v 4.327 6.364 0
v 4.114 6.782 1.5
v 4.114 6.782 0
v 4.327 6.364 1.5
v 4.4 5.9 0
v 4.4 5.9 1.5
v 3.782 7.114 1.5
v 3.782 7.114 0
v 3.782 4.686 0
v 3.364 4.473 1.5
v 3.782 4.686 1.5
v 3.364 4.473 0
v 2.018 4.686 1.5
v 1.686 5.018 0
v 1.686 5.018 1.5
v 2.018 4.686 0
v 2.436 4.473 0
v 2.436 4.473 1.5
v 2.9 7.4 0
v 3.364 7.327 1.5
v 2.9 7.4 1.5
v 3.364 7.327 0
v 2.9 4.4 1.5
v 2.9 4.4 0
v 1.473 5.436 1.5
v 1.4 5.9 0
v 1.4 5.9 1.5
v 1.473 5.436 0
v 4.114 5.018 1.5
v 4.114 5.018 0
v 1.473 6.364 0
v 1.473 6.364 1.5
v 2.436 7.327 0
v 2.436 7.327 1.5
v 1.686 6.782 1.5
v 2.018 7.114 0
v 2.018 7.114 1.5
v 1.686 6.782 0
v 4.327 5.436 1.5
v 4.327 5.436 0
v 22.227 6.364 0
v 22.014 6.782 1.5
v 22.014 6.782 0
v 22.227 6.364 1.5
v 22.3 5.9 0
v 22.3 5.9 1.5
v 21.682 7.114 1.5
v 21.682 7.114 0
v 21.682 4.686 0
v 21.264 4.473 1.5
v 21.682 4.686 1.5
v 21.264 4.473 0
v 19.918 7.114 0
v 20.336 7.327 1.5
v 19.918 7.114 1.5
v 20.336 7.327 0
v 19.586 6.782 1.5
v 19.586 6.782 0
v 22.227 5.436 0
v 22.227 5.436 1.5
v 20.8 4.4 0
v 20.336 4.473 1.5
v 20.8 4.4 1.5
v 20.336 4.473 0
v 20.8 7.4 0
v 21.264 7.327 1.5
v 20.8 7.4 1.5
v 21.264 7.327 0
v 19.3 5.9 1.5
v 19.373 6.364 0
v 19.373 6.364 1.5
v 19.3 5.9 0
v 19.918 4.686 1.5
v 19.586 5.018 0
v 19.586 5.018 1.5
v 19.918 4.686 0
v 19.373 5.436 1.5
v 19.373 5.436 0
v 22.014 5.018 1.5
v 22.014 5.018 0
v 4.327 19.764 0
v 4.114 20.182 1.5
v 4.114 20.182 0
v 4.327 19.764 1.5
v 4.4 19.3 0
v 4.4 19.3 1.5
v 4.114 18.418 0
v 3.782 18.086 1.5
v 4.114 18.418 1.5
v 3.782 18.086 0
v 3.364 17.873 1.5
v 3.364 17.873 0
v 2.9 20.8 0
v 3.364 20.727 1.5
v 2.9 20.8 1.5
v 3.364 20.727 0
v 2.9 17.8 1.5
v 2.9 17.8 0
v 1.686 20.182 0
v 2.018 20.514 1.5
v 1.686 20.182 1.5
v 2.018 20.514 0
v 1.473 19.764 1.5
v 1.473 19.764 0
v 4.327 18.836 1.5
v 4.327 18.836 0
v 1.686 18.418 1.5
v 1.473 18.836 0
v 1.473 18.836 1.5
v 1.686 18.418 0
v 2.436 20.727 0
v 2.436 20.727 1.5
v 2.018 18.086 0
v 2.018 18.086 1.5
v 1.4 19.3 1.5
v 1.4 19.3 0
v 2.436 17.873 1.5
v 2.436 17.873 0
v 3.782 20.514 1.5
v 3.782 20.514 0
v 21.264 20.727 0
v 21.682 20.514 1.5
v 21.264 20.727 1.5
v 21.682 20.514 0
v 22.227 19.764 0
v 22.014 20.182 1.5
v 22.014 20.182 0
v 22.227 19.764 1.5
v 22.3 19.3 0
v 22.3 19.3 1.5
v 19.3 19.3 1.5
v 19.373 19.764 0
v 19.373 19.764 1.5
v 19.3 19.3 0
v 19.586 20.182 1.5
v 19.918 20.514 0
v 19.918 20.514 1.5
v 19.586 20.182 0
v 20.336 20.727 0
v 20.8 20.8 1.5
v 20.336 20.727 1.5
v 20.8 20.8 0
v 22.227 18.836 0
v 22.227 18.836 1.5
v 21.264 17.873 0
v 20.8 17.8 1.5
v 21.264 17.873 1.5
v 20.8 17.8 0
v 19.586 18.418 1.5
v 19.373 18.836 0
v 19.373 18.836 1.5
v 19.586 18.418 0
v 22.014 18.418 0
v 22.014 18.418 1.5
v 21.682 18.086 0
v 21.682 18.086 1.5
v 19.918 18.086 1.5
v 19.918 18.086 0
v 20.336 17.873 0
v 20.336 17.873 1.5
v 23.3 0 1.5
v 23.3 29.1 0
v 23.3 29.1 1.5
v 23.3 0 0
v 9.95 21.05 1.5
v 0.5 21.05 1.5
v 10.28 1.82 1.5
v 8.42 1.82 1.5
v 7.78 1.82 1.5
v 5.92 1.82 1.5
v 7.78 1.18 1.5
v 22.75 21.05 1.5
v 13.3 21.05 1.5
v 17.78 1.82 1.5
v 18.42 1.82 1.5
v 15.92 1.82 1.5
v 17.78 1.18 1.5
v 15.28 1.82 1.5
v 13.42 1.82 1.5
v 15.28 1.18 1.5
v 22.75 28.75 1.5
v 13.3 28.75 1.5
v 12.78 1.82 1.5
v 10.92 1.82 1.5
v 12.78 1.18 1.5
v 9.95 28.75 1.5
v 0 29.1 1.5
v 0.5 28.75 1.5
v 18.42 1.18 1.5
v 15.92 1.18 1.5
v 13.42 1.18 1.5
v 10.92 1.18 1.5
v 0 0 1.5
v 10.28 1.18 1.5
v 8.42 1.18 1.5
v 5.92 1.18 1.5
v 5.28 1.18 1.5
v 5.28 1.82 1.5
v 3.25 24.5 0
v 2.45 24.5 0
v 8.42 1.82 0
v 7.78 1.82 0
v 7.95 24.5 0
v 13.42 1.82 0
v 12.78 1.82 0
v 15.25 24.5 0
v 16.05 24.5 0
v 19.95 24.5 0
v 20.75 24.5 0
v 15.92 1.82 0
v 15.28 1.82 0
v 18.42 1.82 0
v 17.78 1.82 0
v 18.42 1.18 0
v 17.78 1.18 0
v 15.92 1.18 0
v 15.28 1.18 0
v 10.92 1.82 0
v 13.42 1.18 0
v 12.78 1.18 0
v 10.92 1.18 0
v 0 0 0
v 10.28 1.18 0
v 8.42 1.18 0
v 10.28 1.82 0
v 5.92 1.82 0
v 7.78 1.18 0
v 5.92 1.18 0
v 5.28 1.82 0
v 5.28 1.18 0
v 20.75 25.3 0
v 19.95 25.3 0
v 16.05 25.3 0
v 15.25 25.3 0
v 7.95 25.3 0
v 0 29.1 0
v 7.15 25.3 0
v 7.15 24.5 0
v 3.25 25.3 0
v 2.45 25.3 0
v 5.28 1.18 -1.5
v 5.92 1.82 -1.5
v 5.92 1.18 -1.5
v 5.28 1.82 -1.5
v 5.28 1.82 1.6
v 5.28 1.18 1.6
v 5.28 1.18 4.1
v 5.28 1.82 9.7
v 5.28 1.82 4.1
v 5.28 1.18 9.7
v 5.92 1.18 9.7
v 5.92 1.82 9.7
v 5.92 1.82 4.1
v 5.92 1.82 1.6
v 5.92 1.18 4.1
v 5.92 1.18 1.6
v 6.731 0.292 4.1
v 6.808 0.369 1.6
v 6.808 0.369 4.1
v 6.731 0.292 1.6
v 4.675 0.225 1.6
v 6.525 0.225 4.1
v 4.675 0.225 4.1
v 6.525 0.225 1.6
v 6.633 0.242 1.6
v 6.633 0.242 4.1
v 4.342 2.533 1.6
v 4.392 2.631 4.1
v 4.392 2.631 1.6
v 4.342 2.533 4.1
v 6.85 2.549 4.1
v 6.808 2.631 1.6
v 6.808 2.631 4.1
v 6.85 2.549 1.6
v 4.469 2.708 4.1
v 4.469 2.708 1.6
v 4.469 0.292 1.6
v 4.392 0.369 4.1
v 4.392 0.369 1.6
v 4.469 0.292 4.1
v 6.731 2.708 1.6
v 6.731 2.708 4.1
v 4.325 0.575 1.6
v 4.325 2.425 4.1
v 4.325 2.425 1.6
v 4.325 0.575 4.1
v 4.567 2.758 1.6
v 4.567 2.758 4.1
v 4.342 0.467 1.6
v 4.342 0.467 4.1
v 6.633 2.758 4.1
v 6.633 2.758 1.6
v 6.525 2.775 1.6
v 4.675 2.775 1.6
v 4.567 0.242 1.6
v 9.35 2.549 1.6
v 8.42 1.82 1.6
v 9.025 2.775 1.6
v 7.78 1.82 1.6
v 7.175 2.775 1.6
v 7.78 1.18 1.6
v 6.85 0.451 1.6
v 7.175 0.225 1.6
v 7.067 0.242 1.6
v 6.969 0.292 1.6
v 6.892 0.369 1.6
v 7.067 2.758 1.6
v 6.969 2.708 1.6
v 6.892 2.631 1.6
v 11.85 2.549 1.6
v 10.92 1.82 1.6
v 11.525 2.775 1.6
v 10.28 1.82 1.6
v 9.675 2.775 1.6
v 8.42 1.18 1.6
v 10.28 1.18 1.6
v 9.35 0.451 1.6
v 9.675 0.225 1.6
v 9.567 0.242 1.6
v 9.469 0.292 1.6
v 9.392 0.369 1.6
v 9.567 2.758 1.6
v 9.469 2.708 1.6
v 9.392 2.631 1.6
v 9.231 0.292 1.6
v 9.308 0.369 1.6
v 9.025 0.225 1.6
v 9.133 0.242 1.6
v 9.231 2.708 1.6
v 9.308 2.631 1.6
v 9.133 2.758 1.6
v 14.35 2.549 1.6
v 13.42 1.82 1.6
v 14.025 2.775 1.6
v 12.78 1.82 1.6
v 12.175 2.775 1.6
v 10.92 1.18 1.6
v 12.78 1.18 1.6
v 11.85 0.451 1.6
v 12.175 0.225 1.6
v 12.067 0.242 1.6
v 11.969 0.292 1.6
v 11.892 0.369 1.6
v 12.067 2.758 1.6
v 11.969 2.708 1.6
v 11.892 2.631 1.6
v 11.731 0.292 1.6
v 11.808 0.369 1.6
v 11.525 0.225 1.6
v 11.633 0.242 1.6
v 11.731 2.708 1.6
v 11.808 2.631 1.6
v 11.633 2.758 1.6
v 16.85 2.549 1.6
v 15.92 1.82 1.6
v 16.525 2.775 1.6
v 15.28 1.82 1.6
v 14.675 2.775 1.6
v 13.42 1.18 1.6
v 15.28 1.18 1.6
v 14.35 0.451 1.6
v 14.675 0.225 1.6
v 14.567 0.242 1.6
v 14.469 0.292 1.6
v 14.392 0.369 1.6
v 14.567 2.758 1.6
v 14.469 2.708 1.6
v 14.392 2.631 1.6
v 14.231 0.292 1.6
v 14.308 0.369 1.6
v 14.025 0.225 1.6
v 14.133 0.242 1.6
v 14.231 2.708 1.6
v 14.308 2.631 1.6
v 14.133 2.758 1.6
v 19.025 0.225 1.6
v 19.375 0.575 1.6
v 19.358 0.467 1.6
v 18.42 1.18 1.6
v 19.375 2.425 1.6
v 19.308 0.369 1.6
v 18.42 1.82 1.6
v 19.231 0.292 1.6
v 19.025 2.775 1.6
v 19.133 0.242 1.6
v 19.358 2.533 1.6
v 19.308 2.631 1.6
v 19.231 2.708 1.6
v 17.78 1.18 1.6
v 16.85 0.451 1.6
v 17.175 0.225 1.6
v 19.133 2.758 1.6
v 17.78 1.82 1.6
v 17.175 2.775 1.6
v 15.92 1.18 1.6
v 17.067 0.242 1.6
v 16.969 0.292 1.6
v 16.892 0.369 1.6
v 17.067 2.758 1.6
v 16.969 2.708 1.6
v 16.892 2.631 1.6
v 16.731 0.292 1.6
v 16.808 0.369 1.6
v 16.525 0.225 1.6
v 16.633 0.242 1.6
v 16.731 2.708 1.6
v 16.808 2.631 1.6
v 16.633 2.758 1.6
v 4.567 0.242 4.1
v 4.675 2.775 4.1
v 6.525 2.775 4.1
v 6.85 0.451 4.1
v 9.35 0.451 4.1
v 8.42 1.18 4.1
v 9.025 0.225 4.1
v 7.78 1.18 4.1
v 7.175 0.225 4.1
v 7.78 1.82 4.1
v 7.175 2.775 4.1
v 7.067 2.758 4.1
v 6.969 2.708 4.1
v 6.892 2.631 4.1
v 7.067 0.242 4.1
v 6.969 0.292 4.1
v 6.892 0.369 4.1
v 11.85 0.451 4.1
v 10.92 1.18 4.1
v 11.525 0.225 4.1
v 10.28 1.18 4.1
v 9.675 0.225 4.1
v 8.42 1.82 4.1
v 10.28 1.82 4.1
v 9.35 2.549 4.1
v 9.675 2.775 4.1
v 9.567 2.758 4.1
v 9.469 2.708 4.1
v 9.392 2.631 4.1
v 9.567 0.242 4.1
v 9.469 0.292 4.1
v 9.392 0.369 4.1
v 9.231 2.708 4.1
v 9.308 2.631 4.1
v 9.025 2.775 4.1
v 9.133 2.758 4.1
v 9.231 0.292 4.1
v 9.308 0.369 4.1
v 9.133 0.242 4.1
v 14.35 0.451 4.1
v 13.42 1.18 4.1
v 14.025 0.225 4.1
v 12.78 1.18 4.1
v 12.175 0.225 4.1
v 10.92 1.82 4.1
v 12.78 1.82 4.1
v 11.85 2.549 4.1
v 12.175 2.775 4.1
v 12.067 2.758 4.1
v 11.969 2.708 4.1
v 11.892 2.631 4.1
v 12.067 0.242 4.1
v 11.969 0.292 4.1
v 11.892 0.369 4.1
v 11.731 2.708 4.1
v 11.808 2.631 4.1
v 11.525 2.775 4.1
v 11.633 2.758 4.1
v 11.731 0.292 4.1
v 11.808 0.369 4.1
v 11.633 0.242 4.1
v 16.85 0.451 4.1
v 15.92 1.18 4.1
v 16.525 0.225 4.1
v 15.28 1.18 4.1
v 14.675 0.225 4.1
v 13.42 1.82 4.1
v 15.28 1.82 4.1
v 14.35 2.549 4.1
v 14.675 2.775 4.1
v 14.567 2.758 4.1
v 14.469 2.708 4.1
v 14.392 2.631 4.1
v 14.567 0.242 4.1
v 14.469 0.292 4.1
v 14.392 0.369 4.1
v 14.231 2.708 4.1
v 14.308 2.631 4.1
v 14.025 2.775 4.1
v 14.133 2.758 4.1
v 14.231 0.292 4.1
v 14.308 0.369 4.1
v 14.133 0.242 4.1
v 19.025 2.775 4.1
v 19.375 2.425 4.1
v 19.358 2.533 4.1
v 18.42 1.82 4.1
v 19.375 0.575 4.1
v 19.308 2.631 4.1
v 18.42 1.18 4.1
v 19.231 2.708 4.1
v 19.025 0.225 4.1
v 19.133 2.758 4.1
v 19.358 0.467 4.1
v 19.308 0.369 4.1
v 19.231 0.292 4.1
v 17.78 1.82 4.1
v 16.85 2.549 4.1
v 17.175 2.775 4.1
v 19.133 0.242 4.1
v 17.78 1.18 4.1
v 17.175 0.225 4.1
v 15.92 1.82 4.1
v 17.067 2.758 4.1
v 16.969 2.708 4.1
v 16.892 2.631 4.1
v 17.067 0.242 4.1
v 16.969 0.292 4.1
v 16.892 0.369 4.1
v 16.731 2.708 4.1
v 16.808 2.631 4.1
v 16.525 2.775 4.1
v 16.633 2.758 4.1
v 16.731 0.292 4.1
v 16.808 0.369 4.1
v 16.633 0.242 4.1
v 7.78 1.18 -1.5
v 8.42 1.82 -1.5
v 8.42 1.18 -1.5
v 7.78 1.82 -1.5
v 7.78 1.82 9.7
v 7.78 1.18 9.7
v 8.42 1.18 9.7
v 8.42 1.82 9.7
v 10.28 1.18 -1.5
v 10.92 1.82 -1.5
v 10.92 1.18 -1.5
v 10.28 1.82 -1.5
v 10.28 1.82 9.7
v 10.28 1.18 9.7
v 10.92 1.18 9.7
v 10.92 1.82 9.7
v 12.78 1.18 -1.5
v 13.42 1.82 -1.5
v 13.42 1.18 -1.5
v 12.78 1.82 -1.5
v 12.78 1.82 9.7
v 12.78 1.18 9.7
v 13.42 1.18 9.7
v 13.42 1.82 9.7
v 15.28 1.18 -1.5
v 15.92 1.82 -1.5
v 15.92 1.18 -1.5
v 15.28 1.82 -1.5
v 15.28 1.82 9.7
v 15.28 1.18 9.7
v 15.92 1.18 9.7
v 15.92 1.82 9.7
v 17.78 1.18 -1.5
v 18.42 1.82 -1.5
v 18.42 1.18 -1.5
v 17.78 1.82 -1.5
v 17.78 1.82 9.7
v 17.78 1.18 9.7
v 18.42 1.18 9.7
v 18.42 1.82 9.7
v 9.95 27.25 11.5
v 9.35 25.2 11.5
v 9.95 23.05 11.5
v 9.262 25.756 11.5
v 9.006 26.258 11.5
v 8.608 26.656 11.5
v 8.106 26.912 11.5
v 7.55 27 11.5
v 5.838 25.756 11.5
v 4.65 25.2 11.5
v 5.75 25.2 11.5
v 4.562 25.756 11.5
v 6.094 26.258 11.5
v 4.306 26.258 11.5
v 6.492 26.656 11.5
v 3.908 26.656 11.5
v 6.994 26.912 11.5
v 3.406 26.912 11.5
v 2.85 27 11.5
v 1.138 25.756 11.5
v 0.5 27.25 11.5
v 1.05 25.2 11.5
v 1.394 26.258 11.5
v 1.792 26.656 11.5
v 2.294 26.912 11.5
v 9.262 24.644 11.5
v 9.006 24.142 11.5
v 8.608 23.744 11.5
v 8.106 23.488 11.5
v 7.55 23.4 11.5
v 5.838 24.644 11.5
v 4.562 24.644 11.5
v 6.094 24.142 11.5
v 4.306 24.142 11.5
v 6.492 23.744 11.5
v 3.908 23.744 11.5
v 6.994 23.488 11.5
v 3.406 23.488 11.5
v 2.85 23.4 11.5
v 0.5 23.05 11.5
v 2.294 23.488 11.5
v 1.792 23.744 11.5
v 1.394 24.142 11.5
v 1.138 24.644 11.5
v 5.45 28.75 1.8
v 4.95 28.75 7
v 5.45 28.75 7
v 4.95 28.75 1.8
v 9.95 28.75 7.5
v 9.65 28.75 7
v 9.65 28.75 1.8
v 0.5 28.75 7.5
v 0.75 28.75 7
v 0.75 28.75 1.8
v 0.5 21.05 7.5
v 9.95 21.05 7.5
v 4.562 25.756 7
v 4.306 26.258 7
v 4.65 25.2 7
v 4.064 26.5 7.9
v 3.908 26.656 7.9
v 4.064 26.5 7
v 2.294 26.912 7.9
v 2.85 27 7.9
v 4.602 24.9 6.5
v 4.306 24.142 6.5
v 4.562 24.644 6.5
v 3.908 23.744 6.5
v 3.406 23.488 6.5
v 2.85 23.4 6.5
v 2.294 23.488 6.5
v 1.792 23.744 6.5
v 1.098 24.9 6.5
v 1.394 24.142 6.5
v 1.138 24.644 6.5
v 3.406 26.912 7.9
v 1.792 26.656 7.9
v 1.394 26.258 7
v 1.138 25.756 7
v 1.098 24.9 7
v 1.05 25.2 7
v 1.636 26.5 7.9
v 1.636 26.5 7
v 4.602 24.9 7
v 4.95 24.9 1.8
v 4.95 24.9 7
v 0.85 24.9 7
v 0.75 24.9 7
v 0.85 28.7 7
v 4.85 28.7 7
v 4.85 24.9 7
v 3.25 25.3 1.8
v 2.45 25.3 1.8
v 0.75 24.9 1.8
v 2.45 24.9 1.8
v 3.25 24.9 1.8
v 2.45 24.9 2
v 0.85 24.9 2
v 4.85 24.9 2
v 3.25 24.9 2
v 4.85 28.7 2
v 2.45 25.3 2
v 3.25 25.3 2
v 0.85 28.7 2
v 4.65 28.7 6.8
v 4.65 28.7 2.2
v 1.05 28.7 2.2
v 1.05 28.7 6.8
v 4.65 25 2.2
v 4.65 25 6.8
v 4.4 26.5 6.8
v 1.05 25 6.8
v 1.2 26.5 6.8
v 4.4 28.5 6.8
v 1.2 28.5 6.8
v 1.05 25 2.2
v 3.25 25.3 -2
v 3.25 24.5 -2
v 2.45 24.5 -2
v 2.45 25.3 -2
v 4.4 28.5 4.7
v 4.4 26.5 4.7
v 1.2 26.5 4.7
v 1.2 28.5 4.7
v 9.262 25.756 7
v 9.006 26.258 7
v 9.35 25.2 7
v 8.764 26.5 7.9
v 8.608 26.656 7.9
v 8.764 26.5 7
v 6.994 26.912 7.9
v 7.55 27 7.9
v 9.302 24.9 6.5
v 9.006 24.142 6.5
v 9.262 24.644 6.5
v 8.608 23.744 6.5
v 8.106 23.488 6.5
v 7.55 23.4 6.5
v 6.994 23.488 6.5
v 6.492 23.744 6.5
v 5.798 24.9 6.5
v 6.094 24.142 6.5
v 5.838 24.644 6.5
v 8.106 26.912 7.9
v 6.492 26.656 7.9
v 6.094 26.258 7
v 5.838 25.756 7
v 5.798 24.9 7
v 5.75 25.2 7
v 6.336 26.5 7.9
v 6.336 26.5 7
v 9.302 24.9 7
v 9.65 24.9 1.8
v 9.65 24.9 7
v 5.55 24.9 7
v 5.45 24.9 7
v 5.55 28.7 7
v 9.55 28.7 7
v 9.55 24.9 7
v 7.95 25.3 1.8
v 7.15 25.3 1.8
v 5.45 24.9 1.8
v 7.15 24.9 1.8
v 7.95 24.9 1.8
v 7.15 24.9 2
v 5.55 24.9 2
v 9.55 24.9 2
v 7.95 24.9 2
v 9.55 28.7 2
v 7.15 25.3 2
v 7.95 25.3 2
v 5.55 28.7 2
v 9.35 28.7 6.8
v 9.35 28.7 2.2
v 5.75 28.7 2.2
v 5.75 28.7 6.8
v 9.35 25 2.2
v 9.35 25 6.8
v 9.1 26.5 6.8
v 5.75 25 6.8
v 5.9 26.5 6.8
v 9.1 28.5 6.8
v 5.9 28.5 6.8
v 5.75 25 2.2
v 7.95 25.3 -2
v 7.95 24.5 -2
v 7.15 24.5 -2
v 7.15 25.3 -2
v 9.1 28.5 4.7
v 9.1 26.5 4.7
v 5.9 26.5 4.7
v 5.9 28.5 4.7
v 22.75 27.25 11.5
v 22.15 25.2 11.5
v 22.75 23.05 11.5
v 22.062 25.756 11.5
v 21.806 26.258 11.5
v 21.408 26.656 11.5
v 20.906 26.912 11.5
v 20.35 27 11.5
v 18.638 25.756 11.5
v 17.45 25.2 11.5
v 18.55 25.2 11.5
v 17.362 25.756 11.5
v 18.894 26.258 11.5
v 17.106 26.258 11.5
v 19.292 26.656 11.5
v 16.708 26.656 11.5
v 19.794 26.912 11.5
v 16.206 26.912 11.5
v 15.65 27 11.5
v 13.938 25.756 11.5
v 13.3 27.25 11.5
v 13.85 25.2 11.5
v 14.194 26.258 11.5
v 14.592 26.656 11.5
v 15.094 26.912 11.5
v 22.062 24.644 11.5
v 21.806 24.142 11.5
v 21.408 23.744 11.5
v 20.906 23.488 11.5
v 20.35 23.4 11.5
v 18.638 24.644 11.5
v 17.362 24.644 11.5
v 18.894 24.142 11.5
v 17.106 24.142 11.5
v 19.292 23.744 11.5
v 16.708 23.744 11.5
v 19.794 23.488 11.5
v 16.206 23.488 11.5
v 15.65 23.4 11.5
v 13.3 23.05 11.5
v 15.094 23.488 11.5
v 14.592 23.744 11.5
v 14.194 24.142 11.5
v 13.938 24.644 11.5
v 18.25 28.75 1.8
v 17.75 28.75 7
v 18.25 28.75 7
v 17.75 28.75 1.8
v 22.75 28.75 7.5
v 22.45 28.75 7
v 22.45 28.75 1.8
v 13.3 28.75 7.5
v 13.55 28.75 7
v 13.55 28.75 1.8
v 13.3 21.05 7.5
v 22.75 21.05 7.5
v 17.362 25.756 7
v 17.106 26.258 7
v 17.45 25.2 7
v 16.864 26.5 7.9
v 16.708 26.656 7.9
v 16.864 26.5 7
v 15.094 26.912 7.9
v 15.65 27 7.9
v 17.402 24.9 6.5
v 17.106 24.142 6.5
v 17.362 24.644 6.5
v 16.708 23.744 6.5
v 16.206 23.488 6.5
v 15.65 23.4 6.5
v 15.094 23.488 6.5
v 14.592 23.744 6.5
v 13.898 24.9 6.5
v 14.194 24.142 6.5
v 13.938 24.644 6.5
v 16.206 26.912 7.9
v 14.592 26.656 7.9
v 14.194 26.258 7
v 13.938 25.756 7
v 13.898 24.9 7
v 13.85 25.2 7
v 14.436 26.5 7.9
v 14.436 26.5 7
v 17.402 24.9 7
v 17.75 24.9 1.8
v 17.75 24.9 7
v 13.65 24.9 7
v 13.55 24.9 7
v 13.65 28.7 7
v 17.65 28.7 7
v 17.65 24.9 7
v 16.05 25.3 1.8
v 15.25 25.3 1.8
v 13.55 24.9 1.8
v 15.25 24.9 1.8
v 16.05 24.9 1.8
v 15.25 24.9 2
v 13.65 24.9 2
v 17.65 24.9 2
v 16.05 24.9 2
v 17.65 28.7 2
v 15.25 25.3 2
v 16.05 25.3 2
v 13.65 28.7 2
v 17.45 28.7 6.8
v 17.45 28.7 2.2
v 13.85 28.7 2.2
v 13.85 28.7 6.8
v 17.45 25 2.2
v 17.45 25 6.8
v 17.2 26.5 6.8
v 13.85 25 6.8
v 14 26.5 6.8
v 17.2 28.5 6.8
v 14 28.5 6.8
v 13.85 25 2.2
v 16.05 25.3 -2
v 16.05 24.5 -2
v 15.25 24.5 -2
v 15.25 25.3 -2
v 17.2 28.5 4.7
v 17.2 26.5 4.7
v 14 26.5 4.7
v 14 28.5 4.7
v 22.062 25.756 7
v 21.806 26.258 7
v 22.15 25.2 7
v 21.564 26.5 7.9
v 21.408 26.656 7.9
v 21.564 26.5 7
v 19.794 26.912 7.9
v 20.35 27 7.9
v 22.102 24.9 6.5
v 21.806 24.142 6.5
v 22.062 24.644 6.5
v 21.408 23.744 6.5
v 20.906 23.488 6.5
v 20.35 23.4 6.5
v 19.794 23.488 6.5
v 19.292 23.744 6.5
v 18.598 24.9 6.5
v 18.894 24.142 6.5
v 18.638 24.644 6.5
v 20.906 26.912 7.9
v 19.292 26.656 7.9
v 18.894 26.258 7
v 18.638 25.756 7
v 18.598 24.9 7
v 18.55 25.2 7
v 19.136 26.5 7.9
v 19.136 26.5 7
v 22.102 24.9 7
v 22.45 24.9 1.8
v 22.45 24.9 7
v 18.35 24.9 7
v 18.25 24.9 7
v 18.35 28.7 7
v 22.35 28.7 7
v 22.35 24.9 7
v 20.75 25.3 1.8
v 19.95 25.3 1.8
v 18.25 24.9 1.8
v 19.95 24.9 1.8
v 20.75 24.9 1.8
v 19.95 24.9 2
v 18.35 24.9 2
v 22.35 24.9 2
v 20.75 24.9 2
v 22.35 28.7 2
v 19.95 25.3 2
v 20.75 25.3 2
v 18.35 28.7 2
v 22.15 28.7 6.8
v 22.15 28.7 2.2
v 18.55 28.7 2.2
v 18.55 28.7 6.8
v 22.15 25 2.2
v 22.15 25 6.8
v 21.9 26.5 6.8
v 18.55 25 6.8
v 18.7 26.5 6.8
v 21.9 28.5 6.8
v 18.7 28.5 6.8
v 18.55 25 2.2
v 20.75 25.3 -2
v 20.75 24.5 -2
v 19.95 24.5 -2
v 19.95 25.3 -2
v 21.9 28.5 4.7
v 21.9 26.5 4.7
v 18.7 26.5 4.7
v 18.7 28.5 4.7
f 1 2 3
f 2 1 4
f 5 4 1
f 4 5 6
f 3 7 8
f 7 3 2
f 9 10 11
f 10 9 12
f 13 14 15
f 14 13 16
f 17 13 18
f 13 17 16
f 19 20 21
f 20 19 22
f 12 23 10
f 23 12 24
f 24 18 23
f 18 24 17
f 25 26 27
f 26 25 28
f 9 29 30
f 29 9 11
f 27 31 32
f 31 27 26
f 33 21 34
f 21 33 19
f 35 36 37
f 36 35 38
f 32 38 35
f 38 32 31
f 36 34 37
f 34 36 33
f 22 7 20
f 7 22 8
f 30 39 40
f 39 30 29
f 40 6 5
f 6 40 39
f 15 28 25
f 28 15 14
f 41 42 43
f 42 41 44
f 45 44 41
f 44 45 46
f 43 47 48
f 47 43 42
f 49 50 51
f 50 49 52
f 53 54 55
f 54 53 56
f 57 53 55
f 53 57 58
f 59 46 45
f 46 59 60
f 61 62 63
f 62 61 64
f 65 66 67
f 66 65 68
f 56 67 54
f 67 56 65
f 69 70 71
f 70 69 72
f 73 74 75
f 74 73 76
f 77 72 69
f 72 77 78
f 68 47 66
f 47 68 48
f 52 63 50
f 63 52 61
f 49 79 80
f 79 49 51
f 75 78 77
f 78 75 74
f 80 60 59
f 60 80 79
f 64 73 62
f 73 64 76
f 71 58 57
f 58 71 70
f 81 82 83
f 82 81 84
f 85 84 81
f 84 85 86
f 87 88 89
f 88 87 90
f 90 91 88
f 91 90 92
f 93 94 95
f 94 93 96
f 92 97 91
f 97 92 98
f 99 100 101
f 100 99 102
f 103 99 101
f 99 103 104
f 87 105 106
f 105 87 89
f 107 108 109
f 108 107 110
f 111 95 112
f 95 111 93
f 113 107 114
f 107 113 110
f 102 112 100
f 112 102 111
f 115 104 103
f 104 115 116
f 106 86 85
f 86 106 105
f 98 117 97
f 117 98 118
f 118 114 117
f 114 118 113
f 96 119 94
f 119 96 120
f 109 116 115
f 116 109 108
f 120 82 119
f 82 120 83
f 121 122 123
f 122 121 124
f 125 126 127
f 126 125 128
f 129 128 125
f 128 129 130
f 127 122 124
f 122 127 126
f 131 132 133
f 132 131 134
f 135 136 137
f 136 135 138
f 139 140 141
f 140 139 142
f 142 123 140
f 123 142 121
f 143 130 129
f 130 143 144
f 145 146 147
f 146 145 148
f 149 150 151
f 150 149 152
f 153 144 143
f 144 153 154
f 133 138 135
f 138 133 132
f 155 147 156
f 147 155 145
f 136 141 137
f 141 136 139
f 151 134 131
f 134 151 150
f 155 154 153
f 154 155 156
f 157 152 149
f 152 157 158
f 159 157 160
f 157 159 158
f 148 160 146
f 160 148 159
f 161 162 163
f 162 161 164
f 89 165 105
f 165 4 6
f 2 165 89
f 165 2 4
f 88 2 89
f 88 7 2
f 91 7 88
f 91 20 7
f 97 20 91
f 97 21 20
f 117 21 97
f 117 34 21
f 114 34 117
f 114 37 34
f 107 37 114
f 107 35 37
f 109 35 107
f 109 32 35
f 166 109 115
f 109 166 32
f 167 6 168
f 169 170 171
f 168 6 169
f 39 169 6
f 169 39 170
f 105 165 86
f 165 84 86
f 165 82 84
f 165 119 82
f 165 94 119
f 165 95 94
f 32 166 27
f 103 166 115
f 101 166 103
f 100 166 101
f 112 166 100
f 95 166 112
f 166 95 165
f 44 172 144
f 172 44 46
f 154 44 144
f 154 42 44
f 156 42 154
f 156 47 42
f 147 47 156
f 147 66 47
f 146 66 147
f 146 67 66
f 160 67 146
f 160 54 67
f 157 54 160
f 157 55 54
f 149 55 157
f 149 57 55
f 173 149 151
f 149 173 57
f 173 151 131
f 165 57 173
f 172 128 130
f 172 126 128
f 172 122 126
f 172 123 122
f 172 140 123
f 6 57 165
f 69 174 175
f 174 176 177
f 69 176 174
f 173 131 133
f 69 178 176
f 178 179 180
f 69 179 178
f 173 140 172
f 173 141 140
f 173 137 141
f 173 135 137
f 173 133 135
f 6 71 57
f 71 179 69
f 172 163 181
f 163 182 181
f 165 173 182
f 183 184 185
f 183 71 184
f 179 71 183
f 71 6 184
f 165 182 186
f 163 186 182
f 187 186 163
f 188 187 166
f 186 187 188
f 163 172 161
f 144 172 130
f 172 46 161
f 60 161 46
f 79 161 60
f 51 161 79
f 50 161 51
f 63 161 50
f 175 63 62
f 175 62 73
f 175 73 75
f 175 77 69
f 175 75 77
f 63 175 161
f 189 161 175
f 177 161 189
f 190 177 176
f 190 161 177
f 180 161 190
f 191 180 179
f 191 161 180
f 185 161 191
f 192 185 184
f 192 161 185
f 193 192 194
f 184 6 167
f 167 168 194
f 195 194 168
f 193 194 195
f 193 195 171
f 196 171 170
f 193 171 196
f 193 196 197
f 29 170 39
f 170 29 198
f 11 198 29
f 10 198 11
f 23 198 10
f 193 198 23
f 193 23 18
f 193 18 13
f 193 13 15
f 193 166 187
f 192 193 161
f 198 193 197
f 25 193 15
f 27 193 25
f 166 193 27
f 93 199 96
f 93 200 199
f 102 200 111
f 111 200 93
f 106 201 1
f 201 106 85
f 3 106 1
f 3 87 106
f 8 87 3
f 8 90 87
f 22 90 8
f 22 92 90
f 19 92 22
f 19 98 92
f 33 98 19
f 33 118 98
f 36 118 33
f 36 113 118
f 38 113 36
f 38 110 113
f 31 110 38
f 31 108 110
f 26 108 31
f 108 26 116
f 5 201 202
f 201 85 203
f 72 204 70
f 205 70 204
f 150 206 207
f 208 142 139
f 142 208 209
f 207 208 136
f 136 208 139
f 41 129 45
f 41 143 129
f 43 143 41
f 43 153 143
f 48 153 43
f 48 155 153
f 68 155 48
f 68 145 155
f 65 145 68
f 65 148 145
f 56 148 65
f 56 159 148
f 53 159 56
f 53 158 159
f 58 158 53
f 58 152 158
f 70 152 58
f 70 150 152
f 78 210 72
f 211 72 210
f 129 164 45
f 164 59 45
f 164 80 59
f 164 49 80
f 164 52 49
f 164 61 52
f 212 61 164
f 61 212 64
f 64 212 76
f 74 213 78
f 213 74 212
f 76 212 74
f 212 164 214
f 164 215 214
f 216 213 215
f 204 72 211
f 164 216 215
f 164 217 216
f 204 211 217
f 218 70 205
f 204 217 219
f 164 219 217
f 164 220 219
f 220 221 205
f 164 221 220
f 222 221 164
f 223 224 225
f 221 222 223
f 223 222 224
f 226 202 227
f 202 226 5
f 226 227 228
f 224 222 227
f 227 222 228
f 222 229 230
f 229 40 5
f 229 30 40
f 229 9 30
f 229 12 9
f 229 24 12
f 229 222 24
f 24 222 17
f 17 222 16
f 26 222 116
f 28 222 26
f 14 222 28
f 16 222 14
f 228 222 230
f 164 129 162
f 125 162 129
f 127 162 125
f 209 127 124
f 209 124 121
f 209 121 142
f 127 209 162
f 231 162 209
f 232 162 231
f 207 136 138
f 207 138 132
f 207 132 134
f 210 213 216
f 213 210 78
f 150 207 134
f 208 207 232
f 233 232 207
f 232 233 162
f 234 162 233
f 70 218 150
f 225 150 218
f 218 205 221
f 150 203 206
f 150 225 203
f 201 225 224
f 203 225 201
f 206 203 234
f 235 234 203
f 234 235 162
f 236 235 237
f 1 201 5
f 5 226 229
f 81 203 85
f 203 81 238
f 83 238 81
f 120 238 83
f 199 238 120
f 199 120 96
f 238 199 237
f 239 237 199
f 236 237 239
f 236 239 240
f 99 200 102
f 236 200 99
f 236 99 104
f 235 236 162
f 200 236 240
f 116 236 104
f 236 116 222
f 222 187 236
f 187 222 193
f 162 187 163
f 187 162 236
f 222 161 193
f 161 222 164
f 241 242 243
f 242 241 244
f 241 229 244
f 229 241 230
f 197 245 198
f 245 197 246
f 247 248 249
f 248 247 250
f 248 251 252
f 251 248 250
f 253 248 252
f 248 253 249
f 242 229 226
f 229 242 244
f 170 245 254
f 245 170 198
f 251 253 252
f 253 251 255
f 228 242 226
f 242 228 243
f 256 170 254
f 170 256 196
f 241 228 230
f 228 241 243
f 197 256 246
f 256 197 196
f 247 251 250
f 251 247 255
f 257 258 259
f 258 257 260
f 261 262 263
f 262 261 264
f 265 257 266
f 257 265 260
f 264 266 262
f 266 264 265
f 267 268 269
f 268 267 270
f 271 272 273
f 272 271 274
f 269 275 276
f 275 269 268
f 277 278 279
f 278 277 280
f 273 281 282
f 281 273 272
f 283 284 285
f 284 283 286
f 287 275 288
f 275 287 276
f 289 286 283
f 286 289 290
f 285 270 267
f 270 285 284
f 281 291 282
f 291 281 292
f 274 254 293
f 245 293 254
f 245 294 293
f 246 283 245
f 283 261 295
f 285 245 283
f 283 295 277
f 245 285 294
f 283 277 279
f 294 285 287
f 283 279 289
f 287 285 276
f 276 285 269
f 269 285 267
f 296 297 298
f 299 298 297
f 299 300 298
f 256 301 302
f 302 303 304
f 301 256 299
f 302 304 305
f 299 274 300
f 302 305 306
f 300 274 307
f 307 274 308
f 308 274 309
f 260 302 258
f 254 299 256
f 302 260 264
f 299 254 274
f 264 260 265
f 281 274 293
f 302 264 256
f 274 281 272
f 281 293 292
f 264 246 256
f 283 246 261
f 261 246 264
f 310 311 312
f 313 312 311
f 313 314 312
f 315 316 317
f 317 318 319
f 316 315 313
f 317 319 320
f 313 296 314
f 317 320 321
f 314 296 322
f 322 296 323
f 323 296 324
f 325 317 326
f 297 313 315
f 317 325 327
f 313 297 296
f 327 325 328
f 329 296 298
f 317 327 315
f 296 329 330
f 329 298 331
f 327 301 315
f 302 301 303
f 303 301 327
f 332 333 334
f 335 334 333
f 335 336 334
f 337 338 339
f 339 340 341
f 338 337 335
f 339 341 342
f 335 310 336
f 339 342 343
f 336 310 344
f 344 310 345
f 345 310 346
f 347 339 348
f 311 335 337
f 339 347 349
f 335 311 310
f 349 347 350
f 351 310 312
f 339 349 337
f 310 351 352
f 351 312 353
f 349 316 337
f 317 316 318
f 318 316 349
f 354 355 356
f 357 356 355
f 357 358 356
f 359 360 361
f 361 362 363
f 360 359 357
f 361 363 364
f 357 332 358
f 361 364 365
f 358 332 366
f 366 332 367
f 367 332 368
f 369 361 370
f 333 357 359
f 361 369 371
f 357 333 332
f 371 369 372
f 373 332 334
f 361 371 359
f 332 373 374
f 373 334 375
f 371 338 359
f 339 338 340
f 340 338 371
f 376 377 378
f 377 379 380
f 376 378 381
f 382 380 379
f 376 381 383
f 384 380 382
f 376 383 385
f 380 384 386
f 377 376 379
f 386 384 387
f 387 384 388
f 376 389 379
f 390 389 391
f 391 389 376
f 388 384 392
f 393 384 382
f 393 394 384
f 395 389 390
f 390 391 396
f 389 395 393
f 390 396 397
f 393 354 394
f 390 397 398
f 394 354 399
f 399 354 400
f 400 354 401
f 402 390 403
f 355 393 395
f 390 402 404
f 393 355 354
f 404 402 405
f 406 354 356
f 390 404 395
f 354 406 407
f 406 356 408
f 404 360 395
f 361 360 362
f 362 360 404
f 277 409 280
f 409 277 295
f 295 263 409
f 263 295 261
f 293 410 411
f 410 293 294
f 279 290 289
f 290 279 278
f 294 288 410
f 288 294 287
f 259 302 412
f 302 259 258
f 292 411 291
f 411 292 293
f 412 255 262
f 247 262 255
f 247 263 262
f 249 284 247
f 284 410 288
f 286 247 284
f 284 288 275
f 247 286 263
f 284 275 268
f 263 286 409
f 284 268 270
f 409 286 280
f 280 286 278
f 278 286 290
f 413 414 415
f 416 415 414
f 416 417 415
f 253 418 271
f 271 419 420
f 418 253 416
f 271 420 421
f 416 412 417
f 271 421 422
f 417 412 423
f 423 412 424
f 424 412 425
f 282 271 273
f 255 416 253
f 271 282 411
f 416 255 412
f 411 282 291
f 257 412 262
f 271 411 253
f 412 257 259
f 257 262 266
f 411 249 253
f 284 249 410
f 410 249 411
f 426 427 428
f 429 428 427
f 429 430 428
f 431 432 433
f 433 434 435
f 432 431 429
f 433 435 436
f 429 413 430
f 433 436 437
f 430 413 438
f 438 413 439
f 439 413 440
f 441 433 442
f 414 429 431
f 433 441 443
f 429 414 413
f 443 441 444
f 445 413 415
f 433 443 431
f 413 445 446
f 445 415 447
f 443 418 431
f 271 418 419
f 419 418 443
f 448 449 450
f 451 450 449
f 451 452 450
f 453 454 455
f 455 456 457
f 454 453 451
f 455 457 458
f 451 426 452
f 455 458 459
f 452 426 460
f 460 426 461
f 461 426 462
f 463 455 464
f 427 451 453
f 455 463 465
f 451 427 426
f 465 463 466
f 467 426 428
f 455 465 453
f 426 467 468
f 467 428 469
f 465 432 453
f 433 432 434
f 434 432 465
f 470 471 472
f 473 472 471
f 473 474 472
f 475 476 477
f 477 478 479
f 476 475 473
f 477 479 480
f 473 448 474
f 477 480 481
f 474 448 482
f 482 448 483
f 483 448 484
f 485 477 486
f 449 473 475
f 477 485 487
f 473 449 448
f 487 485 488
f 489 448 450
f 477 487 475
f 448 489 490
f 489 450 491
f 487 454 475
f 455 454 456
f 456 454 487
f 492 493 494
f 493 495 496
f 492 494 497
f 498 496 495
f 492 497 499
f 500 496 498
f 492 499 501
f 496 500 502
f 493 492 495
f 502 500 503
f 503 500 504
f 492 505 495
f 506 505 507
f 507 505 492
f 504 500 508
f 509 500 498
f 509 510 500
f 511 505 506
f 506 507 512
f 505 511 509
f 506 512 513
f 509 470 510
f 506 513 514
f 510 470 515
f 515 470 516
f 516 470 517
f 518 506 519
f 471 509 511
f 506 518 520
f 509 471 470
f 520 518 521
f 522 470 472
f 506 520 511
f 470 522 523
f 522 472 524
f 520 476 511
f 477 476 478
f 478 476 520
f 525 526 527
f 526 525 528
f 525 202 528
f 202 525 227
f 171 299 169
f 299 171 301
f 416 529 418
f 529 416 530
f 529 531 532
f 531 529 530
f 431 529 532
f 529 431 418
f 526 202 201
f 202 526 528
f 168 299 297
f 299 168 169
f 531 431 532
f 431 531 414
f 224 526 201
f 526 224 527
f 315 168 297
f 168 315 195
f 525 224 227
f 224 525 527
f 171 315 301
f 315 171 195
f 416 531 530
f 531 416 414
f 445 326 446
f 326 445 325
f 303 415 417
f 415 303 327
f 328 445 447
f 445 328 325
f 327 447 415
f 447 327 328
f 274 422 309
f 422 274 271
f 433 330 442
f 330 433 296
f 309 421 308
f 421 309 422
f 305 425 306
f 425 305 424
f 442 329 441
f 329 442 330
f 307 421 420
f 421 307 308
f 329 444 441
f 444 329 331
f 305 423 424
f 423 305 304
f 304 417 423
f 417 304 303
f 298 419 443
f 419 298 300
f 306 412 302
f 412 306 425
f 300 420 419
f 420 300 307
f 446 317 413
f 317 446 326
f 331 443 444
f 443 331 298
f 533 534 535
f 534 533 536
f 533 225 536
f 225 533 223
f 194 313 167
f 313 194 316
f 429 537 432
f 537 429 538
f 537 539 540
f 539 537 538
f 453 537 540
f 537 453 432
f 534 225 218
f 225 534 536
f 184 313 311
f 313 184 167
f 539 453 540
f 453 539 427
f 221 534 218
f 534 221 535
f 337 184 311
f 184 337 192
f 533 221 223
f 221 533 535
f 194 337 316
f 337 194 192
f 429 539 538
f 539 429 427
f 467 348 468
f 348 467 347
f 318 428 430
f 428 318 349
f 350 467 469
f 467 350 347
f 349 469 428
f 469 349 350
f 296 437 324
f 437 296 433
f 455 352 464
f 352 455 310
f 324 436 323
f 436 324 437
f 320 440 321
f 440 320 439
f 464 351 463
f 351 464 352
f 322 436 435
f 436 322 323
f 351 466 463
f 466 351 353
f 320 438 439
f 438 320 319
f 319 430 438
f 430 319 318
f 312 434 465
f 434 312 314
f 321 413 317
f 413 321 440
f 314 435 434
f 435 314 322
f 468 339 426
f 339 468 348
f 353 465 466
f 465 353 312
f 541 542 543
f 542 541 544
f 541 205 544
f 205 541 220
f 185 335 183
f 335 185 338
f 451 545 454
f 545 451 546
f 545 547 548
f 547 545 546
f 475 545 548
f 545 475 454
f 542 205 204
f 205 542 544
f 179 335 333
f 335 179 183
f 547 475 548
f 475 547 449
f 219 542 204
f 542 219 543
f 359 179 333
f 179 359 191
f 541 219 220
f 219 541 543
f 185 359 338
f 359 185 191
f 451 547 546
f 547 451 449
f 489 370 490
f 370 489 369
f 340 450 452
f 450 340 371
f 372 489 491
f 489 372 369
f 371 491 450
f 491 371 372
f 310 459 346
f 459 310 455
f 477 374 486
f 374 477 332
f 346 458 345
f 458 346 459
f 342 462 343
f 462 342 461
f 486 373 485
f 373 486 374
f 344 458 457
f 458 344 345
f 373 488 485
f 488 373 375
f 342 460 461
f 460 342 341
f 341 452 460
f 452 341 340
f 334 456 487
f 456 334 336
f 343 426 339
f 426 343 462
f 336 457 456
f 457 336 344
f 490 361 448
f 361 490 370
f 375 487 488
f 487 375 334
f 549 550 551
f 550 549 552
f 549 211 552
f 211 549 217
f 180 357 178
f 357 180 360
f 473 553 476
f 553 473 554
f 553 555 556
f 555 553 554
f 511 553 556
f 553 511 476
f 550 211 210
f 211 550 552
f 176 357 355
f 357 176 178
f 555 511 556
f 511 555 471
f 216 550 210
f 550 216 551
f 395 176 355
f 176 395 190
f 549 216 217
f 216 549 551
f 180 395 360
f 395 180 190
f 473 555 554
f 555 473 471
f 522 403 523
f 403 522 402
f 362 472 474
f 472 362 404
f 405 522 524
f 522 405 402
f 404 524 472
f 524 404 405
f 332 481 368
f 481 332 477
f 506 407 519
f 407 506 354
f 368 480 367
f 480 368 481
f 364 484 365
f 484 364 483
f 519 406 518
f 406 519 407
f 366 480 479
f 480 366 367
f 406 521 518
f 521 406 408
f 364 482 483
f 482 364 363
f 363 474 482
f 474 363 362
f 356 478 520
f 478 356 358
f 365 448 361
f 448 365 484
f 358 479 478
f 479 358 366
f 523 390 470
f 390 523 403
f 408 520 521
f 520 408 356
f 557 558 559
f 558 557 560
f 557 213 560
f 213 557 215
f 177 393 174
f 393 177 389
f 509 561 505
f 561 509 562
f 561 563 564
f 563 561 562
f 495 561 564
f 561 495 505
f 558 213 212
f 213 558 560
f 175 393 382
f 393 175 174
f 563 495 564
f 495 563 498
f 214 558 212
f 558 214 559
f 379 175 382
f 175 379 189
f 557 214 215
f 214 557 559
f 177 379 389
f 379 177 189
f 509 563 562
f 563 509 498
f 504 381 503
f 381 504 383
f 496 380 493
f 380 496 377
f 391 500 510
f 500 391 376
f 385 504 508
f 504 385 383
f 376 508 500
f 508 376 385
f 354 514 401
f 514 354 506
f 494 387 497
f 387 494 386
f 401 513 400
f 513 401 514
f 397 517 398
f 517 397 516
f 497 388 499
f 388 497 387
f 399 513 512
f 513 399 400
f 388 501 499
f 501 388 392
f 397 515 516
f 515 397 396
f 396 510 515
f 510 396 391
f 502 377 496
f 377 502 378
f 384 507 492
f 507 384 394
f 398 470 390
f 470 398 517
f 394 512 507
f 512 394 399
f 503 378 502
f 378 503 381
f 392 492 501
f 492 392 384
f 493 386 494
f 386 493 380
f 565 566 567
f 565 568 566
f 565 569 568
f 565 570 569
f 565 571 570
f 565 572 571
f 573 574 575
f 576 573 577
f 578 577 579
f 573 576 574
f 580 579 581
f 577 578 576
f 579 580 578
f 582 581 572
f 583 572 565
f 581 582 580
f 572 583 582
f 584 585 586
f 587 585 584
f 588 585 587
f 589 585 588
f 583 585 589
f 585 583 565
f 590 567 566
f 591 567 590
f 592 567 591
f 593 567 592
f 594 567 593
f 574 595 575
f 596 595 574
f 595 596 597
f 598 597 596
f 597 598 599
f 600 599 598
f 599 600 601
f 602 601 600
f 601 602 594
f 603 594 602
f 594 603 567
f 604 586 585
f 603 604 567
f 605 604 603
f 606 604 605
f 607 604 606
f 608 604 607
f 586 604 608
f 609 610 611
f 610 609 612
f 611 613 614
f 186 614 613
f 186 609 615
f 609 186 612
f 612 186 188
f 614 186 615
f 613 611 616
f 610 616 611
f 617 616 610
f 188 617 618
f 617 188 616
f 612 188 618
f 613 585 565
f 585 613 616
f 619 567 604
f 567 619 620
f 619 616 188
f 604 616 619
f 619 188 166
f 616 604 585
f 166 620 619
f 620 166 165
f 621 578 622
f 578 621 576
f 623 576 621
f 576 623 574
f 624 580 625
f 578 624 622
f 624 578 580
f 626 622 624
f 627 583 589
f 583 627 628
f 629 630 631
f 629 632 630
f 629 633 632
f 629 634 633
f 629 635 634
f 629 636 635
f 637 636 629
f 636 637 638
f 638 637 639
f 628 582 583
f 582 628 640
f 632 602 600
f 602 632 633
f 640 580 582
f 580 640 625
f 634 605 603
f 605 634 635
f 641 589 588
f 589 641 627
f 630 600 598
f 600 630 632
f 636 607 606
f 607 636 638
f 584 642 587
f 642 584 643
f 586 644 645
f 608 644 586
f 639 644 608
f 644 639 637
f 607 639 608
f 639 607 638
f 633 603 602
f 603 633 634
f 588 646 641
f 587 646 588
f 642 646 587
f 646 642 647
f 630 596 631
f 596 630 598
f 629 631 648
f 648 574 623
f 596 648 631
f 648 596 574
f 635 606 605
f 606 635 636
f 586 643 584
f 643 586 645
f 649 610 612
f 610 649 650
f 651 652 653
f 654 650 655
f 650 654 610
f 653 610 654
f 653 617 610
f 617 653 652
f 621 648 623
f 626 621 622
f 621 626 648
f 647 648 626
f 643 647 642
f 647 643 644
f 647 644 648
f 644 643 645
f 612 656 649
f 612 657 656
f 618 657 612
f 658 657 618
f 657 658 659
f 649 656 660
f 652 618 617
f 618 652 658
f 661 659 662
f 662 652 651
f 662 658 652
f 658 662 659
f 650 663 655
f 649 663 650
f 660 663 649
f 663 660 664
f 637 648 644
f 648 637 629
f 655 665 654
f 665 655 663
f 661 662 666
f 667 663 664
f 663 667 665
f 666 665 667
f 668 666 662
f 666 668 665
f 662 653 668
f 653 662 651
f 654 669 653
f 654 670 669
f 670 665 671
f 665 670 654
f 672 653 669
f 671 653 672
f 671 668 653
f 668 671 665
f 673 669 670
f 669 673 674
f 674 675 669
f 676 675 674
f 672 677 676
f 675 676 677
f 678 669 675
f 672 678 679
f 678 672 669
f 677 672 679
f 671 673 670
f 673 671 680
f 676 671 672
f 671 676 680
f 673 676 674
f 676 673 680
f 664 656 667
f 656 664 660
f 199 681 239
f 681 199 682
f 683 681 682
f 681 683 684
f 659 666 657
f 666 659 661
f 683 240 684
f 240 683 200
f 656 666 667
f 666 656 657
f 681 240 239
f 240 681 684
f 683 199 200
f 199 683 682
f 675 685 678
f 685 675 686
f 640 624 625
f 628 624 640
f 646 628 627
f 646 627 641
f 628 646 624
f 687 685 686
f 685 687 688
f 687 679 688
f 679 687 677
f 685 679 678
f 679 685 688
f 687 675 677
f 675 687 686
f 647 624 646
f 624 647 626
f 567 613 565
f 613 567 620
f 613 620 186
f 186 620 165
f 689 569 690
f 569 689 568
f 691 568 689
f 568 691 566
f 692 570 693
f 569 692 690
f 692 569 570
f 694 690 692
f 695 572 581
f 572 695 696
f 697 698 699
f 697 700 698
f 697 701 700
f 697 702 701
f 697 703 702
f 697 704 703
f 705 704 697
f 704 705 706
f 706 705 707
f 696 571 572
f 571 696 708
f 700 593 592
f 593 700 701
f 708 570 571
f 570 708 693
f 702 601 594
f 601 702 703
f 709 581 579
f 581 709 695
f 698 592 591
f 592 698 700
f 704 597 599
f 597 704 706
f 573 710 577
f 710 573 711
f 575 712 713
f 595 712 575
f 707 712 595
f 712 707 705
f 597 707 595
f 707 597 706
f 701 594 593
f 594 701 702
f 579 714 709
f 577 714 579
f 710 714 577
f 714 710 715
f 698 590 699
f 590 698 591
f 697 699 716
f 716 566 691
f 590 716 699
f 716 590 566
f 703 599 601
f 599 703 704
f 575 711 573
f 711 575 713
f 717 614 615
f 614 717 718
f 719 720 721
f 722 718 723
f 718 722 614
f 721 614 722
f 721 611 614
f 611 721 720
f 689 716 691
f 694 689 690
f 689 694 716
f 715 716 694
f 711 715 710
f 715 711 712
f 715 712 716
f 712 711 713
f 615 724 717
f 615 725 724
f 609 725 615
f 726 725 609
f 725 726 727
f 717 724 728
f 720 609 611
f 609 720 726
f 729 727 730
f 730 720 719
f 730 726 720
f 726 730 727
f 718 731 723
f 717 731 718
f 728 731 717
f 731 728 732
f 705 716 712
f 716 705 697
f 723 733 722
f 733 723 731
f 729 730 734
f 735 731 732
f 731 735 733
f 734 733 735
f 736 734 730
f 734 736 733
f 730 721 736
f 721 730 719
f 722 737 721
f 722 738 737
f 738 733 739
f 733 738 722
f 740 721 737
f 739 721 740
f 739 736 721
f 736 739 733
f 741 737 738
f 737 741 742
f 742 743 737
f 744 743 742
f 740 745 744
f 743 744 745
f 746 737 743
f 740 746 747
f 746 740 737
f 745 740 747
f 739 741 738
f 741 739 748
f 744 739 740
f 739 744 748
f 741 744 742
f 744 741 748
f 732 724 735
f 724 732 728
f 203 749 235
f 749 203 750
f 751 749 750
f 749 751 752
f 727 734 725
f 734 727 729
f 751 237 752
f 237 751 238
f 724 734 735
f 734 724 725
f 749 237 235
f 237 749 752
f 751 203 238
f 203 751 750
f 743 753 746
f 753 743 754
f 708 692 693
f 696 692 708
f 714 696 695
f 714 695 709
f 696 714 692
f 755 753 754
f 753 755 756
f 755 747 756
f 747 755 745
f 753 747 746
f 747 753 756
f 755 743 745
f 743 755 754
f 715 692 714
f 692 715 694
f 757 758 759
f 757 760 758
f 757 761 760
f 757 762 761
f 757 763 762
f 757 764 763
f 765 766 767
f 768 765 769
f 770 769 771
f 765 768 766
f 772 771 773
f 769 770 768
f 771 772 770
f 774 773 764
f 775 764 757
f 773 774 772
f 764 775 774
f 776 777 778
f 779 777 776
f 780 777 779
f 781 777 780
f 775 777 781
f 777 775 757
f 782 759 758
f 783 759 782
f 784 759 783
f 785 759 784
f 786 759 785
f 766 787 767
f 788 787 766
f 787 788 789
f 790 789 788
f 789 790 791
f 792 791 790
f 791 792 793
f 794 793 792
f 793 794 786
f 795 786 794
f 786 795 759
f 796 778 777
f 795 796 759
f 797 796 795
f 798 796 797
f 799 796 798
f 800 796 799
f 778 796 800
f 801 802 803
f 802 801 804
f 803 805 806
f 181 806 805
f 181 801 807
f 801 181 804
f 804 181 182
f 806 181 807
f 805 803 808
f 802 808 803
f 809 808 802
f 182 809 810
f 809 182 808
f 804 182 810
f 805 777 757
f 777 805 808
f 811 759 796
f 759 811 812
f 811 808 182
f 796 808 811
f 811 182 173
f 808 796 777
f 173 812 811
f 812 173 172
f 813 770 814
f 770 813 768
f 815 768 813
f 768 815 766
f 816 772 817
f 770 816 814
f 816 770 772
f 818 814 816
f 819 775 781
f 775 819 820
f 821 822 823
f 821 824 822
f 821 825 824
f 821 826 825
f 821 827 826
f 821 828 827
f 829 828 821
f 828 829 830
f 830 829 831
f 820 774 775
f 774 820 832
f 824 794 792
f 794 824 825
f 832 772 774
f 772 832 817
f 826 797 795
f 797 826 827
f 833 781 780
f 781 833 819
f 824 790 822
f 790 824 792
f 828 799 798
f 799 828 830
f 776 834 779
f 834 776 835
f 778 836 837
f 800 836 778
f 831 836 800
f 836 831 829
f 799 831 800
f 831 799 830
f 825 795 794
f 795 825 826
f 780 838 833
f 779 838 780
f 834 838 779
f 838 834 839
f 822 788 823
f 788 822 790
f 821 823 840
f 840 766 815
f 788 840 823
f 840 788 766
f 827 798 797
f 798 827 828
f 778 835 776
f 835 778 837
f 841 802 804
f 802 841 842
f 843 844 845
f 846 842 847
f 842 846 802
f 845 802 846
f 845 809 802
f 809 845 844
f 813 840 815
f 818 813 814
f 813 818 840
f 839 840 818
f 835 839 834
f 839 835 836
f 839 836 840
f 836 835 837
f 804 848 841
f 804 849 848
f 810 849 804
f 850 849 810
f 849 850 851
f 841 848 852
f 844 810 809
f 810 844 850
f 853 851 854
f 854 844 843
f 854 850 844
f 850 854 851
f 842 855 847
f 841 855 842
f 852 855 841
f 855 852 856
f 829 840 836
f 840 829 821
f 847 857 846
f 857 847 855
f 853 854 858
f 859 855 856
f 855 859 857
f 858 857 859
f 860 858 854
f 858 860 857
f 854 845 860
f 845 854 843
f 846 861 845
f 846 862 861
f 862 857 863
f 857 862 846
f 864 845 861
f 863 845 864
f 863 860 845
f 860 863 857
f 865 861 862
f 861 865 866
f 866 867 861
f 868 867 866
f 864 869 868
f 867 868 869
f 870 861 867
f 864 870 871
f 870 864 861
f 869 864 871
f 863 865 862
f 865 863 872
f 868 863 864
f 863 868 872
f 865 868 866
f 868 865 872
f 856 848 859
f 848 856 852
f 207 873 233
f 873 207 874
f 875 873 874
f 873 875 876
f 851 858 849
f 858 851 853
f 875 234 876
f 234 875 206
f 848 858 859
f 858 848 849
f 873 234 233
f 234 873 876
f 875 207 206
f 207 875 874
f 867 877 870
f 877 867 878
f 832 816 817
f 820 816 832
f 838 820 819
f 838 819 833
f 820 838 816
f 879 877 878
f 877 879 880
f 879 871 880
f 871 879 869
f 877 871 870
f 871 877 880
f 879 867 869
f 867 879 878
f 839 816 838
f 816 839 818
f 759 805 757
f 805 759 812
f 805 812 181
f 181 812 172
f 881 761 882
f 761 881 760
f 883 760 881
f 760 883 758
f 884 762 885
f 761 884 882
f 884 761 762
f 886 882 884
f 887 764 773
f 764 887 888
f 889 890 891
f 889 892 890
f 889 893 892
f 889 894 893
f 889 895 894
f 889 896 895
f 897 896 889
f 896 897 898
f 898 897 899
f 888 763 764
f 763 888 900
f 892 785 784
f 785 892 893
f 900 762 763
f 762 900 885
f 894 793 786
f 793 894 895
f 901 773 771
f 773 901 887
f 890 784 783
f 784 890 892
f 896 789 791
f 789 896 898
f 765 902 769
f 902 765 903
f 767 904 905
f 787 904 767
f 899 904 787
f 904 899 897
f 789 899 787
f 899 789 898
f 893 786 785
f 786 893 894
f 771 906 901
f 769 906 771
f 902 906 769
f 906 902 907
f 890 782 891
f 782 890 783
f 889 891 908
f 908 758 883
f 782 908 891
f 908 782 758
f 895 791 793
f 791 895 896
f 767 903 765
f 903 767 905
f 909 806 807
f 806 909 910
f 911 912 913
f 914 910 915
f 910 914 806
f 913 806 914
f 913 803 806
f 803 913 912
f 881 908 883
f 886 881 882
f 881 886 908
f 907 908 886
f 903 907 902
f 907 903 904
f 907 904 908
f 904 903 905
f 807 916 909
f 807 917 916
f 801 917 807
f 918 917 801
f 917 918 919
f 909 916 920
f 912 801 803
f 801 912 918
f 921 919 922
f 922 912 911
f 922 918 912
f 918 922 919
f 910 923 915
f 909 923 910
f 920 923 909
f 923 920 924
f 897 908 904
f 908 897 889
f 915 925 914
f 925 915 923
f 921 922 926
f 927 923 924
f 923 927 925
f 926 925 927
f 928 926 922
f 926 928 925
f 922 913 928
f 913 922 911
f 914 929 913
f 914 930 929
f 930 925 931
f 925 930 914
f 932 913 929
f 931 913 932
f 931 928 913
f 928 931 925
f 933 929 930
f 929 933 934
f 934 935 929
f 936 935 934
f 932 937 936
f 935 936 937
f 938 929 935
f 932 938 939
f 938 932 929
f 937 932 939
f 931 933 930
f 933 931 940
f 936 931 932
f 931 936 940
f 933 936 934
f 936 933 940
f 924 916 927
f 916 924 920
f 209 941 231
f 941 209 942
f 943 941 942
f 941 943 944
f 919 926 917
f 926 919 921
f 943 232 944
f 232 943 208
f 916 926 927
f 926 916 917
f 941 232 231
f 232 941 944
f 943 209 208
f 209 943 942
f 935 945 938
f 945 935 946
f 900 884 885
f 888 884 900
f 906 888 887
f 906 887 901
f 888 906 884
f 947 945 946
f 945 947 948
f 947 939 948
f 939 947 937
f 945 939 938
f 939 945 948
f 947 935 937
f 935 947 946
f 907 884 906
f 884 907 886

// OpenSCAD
// file: screw_connector.scad
BOX_WD = 7.7;
BOX_HT =10;
THICKNESS = 4.7;
size_mod = 0.05; // ensure overlap
SHD_HT = 4;
SCREWHOLE_RAD = 3.6/2;

module single(){
    box_points=[
        [-(BOX_WD/2),0],
        [-(BOX_WD/2),BOX_HT-SHD_HT],
        [-(BOX_WD/2)+2.0,BOX_HT],
        [(BOX_WD/2)-1.5,BOX_HT],
        [(BOX_WD/2),BOX_HT-SHD_HT],
        [(BOX_WD/2),0],
    ];
    difference(){
        rotate(90,[0,0,1]){
            rotate(90,[1,0,0]){
                linear_extrude(height=THICKNESS + size_mod){
                    polygon(box_points);
                }
            }
        }
        // screw hole
        translate([THICKNESS/2,0.3,BOX_HT/2]){
            cylinder(r=SCREWHOLE_RAD,h=6,$fn=20);
        }

        // WIRE_ HOLES
        translate([0.25,0,0.3]){
            cube([4.2,4,5.2]);
        }
    }

    // wires
    translate([(THICKNESS/2)-.4,-0.4,-3.5]){
        cube([0.8,0.8,4]);
    }

    //contact stuff in holes... where the wires go
    translate([0.35,0,0.5]){
        difference(){
            cube([4.0,3.8,5.0]);
            translate([0.2,0.1,0.2]){
                cube([3.6,4.0,4.6]);
            }

        }
    }
    translate([0.7, 1.6, 3.2]){
        cube([3.2,2,3.2]);
    }

}

module dual_screw_connector(){
    single();
    translate([THICKNESS,0,0]){
        single();
    }
}


//dual_screw_connector();
// file: strip_connector_male.scad
include <Round-Anything/polyround.scad>

$fn=20;
shldr_cube = 2.5;
spike_ht = 11.2;
bot_2_cube_top = 5.6;

size_mod = 0.05; // to ensure the shapes actually overlap not 
                // exactly touch
// create one spike of the connector
module conn_spike(){
    
    linear_extrude(height=spike_ht){
        square([0.64,0.64],center=true);
    }

    
    cbhf = (shldr_cube + size_mod)/2;
    cb_rad = 0.35;
    cbxy = [
        [cbhf,cbhf,cb_rad],
        [cbhf,-cbhf,cb_rad],
        [-cbhf,-cbhf,cb_rad],
        [-cbhf,cbhf,cb_rad],
    ];
    
    translate([0,0,bot_2_cube_top-(shldr_cube)]){
        linear_extrude(height=shldr_cube){
            polygon(polyRound(cbxy,$fn=20));
        }
    }

    // cube(shldr_cube,center=true);
}

arm_ht = 7.5;
spike_wd = 0.64;
bend_rad = 1.2;

spike_points = [
    [-(spike_wd/2),0,0],
    [-(spike_wd/2),arm_ht,bend_rad],
    [arm_ht-(spike_wd/2),arm_ht+(spike_wd/2),0],
    [arm_ht-(spike_wd/2),arm_ht-(spike_wd/2),0],
    [(spike_wd/2),arm_ht-spike_wd,bend_rad-spike_wd],
    [(spike_wd/2),0,0],
];



// create one spike of the connector
module bent_conn_spike(){
    
    translate([-spike_wd/2,0,0]){
        rotate(90,[0,0,1]){
            rotate(90,[1,0,0]){
                linear_extrude(height=spike_wd){
                    polygon(polyRound(spike_points));
                }
            }
        }
    }
    
    cbhf = (shldr_cube + size_mod)/2;
    cb_rad = 0.35;
    cbxy = [
        [cbhf,cbhf,cb_rad],
        [cbhf,-cbhf,cb_rad],
        [-cbhf,-cbhf,cb_rad],
        [-cbhf,cbhf,cb_rad],
    ];
    
    translate([0,0,bot_2_cube_top-(shldr_cube)]){
        linear_extrude(height=shldr_cube){
            polygon(polyRound(cbxy,$fn=20));
        }
    }

    // cube(shldr_cube,center=true);
}



// create an arbitrarily long line of them
// along the x-axis
module bent_multi_male_connector(conn_count){
    for (cc=[0 : conn_count-1] ){
        //translate([((cc*shldr_cube))-(shldr_cube/2),0,0]){
        translate([((cc*shldr_cube)),0,0]){
            bent_conn_spike();
        }
    }

}

//bent_multi_male_connector(14);

// create an arbitrarily long line of them
// along the x-axis
module multi_male_connector(conn_count){
    for (cc=[0 : conn_count-1] ){
        //translate([((cc*shldr_cube))-(shldr_cube/2),0,0]){
        translate([((cc*shldr_cube)),0,0]){
            conn_spike();
        }
    }

}

module matrix_male_connector(xlen,ylen){
    translate([0,0,-(bot_2_cube_top-shldr_cube)]){
        for(cc=[0 : ylen-1] ){
            translate([0,cc*shldr_cube,0]){
                multi_male_connector(xlen);
            }
        }
    }

}

//multi_male_connector(20);
//matrix_male_connector(6,5);
// main file
include <strip_connector_male.scad>
include <screw_connector.scad>

$fn=20;
WIDTH = 23.3;
LENGTH = 29.1;
DEPTH = 1.5;

PCB_MNT_HOLE_RAD = 3/2;


hole_pts = [
    [1.4+PCB_MNT_HOLE_RAD,4.4+PCB_MNT_HOLE_RAD],
    [19.3 + PCB_MNT_HOLE_RAD,4.4+PCB_MNT_HOLE_RAD],
    [1.4+PCB_MNT_HOLE_RAD,17.8+PCB_MNT_HOLE_RAD],
    [19.3 + PCB_MNT_HOLE_RAD,17.8+PCB_MNT_HOLE_RAD],
];

difference(){
    // THE ACTUAL PCB
    cube([WIDTH,LENGTH,DEPTH]);

    for(pt = hole_pts){
        translate([pt[0],pt[1],0]){
            cylinder(r=PCB_MNT_HOLE_RAD,h=5,center=true);
        }
    }
}

translate([5.6,1.5,-1.5]){
    multi_male_connector(6);
}

translate([0.5,LENGTH-4.2,1.5]){
    dual_screw_connector();
}
translate([WIDTH-10,LENGTH-4.2,1.5]){
    dual_screw_connector();
}
